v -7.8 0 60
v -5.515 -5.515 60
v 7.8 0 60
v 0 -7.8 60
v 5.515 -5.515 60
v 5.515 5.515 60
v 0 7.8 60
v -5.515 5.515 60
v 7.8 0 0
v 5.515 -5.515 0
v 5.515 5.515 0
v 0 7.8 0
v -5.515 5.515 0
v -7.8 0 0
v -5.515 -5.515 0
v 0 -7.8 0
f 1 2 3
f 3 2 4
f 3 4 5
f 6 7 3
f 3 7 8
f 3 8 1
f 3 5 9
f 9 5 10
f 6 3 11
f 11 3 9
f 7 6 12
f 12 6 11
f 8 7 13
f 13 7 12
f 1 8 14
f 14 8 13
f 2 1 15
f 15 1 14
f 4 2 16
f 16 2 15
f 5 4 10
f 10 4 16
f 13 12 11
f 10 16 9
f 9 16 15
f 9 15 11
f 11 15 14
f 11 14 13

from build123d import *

# Parameters (mm, degrees)
BOSS_EXTRUDE1_DEPTH = 60
BOSS_EXTRUDE2_DEPTH = 60
SKETCH4_W           = 60
SKETCH4_H           = 14.412520708
CUT_EXTRUDE1_DEPTH  = 60


with BuildPart() as part:
    # Sketch2 → Boss-Extrude1 (new body)
    with BuildSketch(Plane.XY):
        Polygon((7.8, 0), (5.515432893, 5.515432893), (0, 7.8), (-5.515432893, 5.515432893), (-7.8, 0), (-5.515432893, -5.515432893), (0, -7.8), (5.515432893, -5.515432893), align=None)
    extrude(amount=BOSS_EXTRUDE1_DEPTH)

    # Sketch3 → Boss-Extrude2 (add)
    with BuildSketch(Plane.XY.offset(60)):
        with BuildLine():
            ThreePointArc((-5.515432893, 5.515432893), (-2.284567107, 5.515432893), (0, 7.8))
            ThreePointArc((0, 7.8), (2.284567107, 5.515432893), (5.515432893, 5.515432893))
            ThreePointArc((5.515432893, 5.515432893), (5.515432893, 2.284567107), (7.8, 0))
            ThreePointArc((7.8, 0), (5.515432893, -2.284567107), (5.515432893, -5.515432893))
            ThreePointArc((5.515432893, -5.515432893), (2.284567107, -5.515432893), (0, -7.8))
            ThreePointArc((0, -7.8), (-2.284567107, -5.515432893), (-5.515432893, -5.515432893))
            ThreePointArc((-5.515432893, -5.515432893), (-4.916369213, -2.036426805), (-7.8, 0))
            ThreePointArc((-7.8, 0), (-5.515432893, 2.284567107), (-5.515432893, 5.515432893))
        make_face()
    extrude(amount=BOSS_EXTRUDE2_DEPTH)

    # Sketch4 → Cut-Extrude1 (cut)
    with BuildSketch(Plane(origin=(-6.657716447, -2.757716447, 0), x_dir=(0, 0, 1), z_dir=(-0.9238795325112824, -0.3826834323651004, 0))):
        with Locations((90, 0)):
            Rectangle(SKETCH4_W, SKETCH4_H)
    extrude(amount=-CUT_EXTRUDE1_DEPTH, mode=Mode.SUBTRACT)


solid = part.part
